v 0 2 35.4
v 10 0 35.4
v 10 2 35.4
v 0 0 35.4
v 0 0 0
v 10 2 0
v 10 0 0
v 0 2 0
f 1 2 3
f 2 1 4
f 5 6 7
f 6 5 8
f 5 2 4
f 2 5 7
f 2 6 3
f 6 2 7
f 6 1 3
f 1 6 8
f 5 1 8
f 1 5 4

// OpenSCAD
// file: ../Parameters.scad
//Main tube diameter - hole [mm]
main_tube_outer_diameter = 25.4;
main_tube_inner_diameter = 23.5;

//Tube for undercarriage - hole [mm]
tube_for_undercarriage_outer_diameter = 10.6;
tube_for_undercarriage_inner_diameter = 6;
global_clearance = 0.5;


//umístění podvozkových trubek

second_undercarriage_hole = main_tube_outer_diameter*2 + main_tube_outer_diameter/5 + main_tube_outer_diameter/2 + 170 + 160;

// Parameters of cube couplings
coupling_wall_thickness = main_tube_outer_diameter/5;  //width of coupling walls 
thickness_between_tubes = main_tube_outer_diameter/10;    // minimum distance between tubes in couplings

coupling_wall_thickness_undercarriage = tube_for_undercarriage_outer_diameter/3;
thickness_between_tubes_undercarriage = tube_for_undercarriage_outer_diameter/10;

//Screw diameter and nut for M4 [mm]
M4_screw_diameter=4.5;
Nut_height_M4 = 3.2;
Nut_diameter_M4 = 7.86;


//Screw diameter and nut for M3 [mm]
M3_screw_diameter = 3.2;
Nut_height_M3 = 1.7;	
Nut_diameter_M3 = 6.6; 


//The tube for help
Help_main_tube_outer = 25;
Help_main_tube_inner = 23; 
Help_tube_for_undercarriage_outer = 10;
Help_tube_for_undercarriage_inner = 5;


//main hull parameters

hull_drop_length = 580;
hull_wall_thickness = 0.8;
hull_y_size = 120;
hull_z_size = 150;
hull_x_size = 580;
hull_corner_radius = 4;
hull_airfoil_thickness= 35;  // thickness of drop generating airfoil in percent of lenght.
hull_scale_x = 1;
hull_scale_y = 1.5;
hull_scale_z = 1.5;

main_pilon_position = 170+68;
cover_pilon_position = 180;
height_of_vertical_tube = 275; //278mm je změřená délka trubky. 

ribbon_width = 5; // šířka vyztužovacích lemů. 

// šířka otvoru v přední části kapoty pro držák motoru.
width_of_engine_holder = 63;

//Top Cover Division - dělení horního krytu pro tisk
top_cover_division = [0, 50, 150, 280, 410, hull_x_size]; // upraveny seznam tak, aby deleni začinalo od nuly, což umožňí úplně automatické rozdělení.

//Bottom Cover Division - dělení dolního krytu pro tisk
bottom_cover_division = [0,100,250,365, 470, hull_x_size];
// zkrácená část pro payload pro testovací tisk
//bottom_cover_division = [0,200,250,365, 470, hull_x_size];

//Base Divison - dělení podložky
base_division = [0,140,280,410, hull_x_size];

//Cover pilon division - na výšku (v ose Z)
cover_pilon_division = [0,170,height_of_vertical_tube + main_tube_outer_diameter + coupling_wall_thickness];

//pozice šroubů
	//horní kryt
top_screw_position = [0, (top_cover_division[0] + top_cover_division[1])/4, (top_cover_division[2] - top_cover_division[1])/2 + top_cover_division[1], (top_cover_division[3] - top_cover_division[2])/2 + top_cover_division[2],(top_cover_division[4] - top_cover_division[3])/2 + top_cover_division[3],(top_cover_division[5] - top_cover_division[4])/2 + top_cover_division[4] - 20];
	//spodní kryt
bottom_screw_position = [0,(bottom_cover_division[0] + bottom_cover_division[1])/15 + 5, bottom_cover_division[1]/1.1, + bottom_cover_division[3], bottom_cover_division[3] + bottom_cover_division[1]/2, bottom_cover_division[4] - 6*global_clearance, bottom_cover_division[4] + bottom_cover_division[1]/2.5];




//šířka zámků
lock_width = 10;

//délka zámků
lock_length = 3;


//accumulator
//základní rozměry akumulátoru
width_of_accumulator = 129.4;//45+1;
depth_of_accumulator = 40.61;
height_of_accumulator = 43.65;
//Zapuštění akumulátoru
sink_of_accumulator = 5; //main_tube_outer_diameter/5 - Nut_height_M3*1.5;

//tloušťka hrany spojky
accumulator_holder_width = 18; 
accumulator_holder_thickness = 10; 

//posunutí akumálátoru na podložce
move_of_accumulator = 165;   // pozice akumulátoru (ovlivňuje těžiště)


////////////////
// Senzory
///////////////////

//opticalFlow
    width_optical_flow_senzor = 45.5;
    depth_optical_flow_senzor = 6;
    height_optical_flow_senzor = 35;
    sink_of_optical_flow_senzor = depth_optical_flow_senzor - 5; 
    M3_optical_flow_senzor_Z = 30.4;
    M3_optical_flow_senzor_X = 24;
    M3_optical_flow_senzor_Z_alone = 9.1;
    M3_optical_flow_senzor_X_alone = 16.7;
// file: lib/naca4.scad
// Naca4.scad - library for parametric airfoils of 4 digit NACA series
// Code: Rudolf Huttary, Berlin 
// June 2015
// commercial use prohibited


// general use: for more examples refer to sampler.scad
// naca = naca digits or 3el vector  (default = 12 or [0, 0, .12])
// L    = chord length [mm]      (default= 100)
// N    = # sample points        (default= 81)
// h    = height [mm]            (default= 1)
// open = close at the thin end? (default = true)
// two equivalent example calls
 airfoil(naca = 2408, L = 60, N=1001, h = 30, open = false); 
// airfoil(naca = [.2, .4, .32], L = 60, N=1001, h = 30, open = false); 

module help()
{
  echo(str("\n\nList of signatures in lib:\n=================\n", 
  "module airfoil(naca=2412, L = 100, N = 81, h = 1, open = false) - renders airfoil object\n", 
  "module airfoil(naca=[.2, .4, .12], L = 100, N = 81, h = 1, open = false) - renders airfoil object using percentage for camber,  camber distance and thicknes\n", 
  "function airfoil_data(naca=12, L = 100, N = 81, open = false)\n",
  "=================\n")); 
}

help(); 
// this is the object
module airfoil(naca=12, L = 100, N = 81, h = 1, open = false)
{
  linear_extrude(height = h)
  polygon(points = airfoil_data(naca, L, N, open)); 
}

module hollow_airfoil(lnaca=12, L = 100, N = 81, h = 1, open = false, wall_thickness = 1)
{
    if (open){
        linear_extrude(height = h)

        if (wall_thickness>0){
            difference(){
                polygon(points = airfoil_data(naca, L, N, false));
                offset(delta = - wall_thickness, chamfer = false) polygon(points = airfoil_data(naca, L, N, open = false));
            }
        }
        else{
            difference(){
                offset(delta = - wall_thickness, chamfer = false) polygon(points = airfoil_data(naca, L, N, open = false));
                polygon(points = airfoil_data(naca, L, N, false));
            }
        }
    }
    else{

        linear_extrude(height = abs(wall_thickness))
            polygon(points = airfoil_data(naca, L, N, false)); 

        linear_extrude(height = h)
            difference(){
                polygon(points = airfoil_data(naca, L, N, open));
                offset(delta = - wall_thickness) polygon(points = airfoil_data(naca, L, N, open = false));
            }

        translate([0,0, h - wall_thickness])
            linear_extrude(height = abs(wall_thickness))
                polygon(points = airfoil_data(naca, L, N, false)); 

    }
}


// this is the main function providing the airfoil data
function airfoil_data(naca=12, L = 100, N = 81, open = false) = 
  let(Na = len(naca)!=3?NACA(naca):naca)
  let(A = [.2969, -0.126, -.3516, .2843, open?-0.1015:-0.1036])
  [for (b=[-180:360/(N):179.99]) 
    let (x = (1-cos(b))/2)  
    let(yt = sign(b)*Na[2]/.2*(A*[sqrt(x), x, x*x, x*x*x, x*x*x*x])) 
    Na[0]==0?L*[x, yt]:L*camber(x, yt, Na[0], Na[1], sign(b))];  


function trailing_edge_angle(naca=12, open = false) = 
  let(Na = len(naca)!=3?NACA(naca):naca)
  let(A = [.2969, -0.126, -.3516, .2843, open?-0.1015:-0.1036])
  let (x =0.999)  // set x near to airfoil trailing edge
  let(yt = Na[2]/.2*(A*[sqrt(x), x, x*x, x*x*x, x*x*x*x])) // calculate distance from x-axis at previously set position
  atan2(yt,1-x);  // calculate angle of triangle between end of airfoil. The triange height corresponds to previously calculated distance from x-axis

function surface_angle(x = 0.5, naca=12, open = false) = 
  let(Na = len(naca)!=3?NACA(naca):naca)
  let(A = [0.2969, -0.126, -0.3516, 0.2843, open?-0.1015:-0.1036])
  let(dy = Na[2]/0.2*(A*[(1/2)*(1/sqrt(x)), 1, 2*x, 3*x*x, 4*x*x*x])) // calculate derivative of airfoil function at the x point
  atan(dy);  // calculate  the angle from function derivative

function surface_distance(x = 0.5, naca=12, open = false) = 
  let(Na = len(naca)!=3?NACA(naca):naca)
  let(A = [0.2969, -0.126, -0.3516, 0.2843, open?-0.1015:-0.1036])
  Na[2]/.2*(A*[sqrt(x), x, x*x, x*x*x, x*x*x*x]); // calculate distance from x-axis at previously set position

// helper functions
function NACA(naca) = 
  let (M = floor(naca/1000))
  let (P = floor((naca-M*1000)/100)) 
  [M/100, P/10, floor(naca-M*1000-P*100)/100];  

function camber(x, y, M, P, upper) = 
  let(yc = (x<P)?M/P/P*(2*P*x-x*x): M/(1-P)/(1-P)*(1 - 2*P + 2*P*x -x*x))
  let(dy = (x<P)?2*M/P/P*(P-x):2*M/(1-P)/(1-P)*(P-x))
  let(th = atan(dy))
  [upper ? x - y*sin(th):x + y*sin(th), upper ? yc + y*cos(th):yc - y*cos(th)];
// main file
use <./lib/naca4.scad>
include <../Parameters.scad>


module 888_1002(){

cube([10,2,main_tube_outer_diameter+10]);


}


888_1002();
